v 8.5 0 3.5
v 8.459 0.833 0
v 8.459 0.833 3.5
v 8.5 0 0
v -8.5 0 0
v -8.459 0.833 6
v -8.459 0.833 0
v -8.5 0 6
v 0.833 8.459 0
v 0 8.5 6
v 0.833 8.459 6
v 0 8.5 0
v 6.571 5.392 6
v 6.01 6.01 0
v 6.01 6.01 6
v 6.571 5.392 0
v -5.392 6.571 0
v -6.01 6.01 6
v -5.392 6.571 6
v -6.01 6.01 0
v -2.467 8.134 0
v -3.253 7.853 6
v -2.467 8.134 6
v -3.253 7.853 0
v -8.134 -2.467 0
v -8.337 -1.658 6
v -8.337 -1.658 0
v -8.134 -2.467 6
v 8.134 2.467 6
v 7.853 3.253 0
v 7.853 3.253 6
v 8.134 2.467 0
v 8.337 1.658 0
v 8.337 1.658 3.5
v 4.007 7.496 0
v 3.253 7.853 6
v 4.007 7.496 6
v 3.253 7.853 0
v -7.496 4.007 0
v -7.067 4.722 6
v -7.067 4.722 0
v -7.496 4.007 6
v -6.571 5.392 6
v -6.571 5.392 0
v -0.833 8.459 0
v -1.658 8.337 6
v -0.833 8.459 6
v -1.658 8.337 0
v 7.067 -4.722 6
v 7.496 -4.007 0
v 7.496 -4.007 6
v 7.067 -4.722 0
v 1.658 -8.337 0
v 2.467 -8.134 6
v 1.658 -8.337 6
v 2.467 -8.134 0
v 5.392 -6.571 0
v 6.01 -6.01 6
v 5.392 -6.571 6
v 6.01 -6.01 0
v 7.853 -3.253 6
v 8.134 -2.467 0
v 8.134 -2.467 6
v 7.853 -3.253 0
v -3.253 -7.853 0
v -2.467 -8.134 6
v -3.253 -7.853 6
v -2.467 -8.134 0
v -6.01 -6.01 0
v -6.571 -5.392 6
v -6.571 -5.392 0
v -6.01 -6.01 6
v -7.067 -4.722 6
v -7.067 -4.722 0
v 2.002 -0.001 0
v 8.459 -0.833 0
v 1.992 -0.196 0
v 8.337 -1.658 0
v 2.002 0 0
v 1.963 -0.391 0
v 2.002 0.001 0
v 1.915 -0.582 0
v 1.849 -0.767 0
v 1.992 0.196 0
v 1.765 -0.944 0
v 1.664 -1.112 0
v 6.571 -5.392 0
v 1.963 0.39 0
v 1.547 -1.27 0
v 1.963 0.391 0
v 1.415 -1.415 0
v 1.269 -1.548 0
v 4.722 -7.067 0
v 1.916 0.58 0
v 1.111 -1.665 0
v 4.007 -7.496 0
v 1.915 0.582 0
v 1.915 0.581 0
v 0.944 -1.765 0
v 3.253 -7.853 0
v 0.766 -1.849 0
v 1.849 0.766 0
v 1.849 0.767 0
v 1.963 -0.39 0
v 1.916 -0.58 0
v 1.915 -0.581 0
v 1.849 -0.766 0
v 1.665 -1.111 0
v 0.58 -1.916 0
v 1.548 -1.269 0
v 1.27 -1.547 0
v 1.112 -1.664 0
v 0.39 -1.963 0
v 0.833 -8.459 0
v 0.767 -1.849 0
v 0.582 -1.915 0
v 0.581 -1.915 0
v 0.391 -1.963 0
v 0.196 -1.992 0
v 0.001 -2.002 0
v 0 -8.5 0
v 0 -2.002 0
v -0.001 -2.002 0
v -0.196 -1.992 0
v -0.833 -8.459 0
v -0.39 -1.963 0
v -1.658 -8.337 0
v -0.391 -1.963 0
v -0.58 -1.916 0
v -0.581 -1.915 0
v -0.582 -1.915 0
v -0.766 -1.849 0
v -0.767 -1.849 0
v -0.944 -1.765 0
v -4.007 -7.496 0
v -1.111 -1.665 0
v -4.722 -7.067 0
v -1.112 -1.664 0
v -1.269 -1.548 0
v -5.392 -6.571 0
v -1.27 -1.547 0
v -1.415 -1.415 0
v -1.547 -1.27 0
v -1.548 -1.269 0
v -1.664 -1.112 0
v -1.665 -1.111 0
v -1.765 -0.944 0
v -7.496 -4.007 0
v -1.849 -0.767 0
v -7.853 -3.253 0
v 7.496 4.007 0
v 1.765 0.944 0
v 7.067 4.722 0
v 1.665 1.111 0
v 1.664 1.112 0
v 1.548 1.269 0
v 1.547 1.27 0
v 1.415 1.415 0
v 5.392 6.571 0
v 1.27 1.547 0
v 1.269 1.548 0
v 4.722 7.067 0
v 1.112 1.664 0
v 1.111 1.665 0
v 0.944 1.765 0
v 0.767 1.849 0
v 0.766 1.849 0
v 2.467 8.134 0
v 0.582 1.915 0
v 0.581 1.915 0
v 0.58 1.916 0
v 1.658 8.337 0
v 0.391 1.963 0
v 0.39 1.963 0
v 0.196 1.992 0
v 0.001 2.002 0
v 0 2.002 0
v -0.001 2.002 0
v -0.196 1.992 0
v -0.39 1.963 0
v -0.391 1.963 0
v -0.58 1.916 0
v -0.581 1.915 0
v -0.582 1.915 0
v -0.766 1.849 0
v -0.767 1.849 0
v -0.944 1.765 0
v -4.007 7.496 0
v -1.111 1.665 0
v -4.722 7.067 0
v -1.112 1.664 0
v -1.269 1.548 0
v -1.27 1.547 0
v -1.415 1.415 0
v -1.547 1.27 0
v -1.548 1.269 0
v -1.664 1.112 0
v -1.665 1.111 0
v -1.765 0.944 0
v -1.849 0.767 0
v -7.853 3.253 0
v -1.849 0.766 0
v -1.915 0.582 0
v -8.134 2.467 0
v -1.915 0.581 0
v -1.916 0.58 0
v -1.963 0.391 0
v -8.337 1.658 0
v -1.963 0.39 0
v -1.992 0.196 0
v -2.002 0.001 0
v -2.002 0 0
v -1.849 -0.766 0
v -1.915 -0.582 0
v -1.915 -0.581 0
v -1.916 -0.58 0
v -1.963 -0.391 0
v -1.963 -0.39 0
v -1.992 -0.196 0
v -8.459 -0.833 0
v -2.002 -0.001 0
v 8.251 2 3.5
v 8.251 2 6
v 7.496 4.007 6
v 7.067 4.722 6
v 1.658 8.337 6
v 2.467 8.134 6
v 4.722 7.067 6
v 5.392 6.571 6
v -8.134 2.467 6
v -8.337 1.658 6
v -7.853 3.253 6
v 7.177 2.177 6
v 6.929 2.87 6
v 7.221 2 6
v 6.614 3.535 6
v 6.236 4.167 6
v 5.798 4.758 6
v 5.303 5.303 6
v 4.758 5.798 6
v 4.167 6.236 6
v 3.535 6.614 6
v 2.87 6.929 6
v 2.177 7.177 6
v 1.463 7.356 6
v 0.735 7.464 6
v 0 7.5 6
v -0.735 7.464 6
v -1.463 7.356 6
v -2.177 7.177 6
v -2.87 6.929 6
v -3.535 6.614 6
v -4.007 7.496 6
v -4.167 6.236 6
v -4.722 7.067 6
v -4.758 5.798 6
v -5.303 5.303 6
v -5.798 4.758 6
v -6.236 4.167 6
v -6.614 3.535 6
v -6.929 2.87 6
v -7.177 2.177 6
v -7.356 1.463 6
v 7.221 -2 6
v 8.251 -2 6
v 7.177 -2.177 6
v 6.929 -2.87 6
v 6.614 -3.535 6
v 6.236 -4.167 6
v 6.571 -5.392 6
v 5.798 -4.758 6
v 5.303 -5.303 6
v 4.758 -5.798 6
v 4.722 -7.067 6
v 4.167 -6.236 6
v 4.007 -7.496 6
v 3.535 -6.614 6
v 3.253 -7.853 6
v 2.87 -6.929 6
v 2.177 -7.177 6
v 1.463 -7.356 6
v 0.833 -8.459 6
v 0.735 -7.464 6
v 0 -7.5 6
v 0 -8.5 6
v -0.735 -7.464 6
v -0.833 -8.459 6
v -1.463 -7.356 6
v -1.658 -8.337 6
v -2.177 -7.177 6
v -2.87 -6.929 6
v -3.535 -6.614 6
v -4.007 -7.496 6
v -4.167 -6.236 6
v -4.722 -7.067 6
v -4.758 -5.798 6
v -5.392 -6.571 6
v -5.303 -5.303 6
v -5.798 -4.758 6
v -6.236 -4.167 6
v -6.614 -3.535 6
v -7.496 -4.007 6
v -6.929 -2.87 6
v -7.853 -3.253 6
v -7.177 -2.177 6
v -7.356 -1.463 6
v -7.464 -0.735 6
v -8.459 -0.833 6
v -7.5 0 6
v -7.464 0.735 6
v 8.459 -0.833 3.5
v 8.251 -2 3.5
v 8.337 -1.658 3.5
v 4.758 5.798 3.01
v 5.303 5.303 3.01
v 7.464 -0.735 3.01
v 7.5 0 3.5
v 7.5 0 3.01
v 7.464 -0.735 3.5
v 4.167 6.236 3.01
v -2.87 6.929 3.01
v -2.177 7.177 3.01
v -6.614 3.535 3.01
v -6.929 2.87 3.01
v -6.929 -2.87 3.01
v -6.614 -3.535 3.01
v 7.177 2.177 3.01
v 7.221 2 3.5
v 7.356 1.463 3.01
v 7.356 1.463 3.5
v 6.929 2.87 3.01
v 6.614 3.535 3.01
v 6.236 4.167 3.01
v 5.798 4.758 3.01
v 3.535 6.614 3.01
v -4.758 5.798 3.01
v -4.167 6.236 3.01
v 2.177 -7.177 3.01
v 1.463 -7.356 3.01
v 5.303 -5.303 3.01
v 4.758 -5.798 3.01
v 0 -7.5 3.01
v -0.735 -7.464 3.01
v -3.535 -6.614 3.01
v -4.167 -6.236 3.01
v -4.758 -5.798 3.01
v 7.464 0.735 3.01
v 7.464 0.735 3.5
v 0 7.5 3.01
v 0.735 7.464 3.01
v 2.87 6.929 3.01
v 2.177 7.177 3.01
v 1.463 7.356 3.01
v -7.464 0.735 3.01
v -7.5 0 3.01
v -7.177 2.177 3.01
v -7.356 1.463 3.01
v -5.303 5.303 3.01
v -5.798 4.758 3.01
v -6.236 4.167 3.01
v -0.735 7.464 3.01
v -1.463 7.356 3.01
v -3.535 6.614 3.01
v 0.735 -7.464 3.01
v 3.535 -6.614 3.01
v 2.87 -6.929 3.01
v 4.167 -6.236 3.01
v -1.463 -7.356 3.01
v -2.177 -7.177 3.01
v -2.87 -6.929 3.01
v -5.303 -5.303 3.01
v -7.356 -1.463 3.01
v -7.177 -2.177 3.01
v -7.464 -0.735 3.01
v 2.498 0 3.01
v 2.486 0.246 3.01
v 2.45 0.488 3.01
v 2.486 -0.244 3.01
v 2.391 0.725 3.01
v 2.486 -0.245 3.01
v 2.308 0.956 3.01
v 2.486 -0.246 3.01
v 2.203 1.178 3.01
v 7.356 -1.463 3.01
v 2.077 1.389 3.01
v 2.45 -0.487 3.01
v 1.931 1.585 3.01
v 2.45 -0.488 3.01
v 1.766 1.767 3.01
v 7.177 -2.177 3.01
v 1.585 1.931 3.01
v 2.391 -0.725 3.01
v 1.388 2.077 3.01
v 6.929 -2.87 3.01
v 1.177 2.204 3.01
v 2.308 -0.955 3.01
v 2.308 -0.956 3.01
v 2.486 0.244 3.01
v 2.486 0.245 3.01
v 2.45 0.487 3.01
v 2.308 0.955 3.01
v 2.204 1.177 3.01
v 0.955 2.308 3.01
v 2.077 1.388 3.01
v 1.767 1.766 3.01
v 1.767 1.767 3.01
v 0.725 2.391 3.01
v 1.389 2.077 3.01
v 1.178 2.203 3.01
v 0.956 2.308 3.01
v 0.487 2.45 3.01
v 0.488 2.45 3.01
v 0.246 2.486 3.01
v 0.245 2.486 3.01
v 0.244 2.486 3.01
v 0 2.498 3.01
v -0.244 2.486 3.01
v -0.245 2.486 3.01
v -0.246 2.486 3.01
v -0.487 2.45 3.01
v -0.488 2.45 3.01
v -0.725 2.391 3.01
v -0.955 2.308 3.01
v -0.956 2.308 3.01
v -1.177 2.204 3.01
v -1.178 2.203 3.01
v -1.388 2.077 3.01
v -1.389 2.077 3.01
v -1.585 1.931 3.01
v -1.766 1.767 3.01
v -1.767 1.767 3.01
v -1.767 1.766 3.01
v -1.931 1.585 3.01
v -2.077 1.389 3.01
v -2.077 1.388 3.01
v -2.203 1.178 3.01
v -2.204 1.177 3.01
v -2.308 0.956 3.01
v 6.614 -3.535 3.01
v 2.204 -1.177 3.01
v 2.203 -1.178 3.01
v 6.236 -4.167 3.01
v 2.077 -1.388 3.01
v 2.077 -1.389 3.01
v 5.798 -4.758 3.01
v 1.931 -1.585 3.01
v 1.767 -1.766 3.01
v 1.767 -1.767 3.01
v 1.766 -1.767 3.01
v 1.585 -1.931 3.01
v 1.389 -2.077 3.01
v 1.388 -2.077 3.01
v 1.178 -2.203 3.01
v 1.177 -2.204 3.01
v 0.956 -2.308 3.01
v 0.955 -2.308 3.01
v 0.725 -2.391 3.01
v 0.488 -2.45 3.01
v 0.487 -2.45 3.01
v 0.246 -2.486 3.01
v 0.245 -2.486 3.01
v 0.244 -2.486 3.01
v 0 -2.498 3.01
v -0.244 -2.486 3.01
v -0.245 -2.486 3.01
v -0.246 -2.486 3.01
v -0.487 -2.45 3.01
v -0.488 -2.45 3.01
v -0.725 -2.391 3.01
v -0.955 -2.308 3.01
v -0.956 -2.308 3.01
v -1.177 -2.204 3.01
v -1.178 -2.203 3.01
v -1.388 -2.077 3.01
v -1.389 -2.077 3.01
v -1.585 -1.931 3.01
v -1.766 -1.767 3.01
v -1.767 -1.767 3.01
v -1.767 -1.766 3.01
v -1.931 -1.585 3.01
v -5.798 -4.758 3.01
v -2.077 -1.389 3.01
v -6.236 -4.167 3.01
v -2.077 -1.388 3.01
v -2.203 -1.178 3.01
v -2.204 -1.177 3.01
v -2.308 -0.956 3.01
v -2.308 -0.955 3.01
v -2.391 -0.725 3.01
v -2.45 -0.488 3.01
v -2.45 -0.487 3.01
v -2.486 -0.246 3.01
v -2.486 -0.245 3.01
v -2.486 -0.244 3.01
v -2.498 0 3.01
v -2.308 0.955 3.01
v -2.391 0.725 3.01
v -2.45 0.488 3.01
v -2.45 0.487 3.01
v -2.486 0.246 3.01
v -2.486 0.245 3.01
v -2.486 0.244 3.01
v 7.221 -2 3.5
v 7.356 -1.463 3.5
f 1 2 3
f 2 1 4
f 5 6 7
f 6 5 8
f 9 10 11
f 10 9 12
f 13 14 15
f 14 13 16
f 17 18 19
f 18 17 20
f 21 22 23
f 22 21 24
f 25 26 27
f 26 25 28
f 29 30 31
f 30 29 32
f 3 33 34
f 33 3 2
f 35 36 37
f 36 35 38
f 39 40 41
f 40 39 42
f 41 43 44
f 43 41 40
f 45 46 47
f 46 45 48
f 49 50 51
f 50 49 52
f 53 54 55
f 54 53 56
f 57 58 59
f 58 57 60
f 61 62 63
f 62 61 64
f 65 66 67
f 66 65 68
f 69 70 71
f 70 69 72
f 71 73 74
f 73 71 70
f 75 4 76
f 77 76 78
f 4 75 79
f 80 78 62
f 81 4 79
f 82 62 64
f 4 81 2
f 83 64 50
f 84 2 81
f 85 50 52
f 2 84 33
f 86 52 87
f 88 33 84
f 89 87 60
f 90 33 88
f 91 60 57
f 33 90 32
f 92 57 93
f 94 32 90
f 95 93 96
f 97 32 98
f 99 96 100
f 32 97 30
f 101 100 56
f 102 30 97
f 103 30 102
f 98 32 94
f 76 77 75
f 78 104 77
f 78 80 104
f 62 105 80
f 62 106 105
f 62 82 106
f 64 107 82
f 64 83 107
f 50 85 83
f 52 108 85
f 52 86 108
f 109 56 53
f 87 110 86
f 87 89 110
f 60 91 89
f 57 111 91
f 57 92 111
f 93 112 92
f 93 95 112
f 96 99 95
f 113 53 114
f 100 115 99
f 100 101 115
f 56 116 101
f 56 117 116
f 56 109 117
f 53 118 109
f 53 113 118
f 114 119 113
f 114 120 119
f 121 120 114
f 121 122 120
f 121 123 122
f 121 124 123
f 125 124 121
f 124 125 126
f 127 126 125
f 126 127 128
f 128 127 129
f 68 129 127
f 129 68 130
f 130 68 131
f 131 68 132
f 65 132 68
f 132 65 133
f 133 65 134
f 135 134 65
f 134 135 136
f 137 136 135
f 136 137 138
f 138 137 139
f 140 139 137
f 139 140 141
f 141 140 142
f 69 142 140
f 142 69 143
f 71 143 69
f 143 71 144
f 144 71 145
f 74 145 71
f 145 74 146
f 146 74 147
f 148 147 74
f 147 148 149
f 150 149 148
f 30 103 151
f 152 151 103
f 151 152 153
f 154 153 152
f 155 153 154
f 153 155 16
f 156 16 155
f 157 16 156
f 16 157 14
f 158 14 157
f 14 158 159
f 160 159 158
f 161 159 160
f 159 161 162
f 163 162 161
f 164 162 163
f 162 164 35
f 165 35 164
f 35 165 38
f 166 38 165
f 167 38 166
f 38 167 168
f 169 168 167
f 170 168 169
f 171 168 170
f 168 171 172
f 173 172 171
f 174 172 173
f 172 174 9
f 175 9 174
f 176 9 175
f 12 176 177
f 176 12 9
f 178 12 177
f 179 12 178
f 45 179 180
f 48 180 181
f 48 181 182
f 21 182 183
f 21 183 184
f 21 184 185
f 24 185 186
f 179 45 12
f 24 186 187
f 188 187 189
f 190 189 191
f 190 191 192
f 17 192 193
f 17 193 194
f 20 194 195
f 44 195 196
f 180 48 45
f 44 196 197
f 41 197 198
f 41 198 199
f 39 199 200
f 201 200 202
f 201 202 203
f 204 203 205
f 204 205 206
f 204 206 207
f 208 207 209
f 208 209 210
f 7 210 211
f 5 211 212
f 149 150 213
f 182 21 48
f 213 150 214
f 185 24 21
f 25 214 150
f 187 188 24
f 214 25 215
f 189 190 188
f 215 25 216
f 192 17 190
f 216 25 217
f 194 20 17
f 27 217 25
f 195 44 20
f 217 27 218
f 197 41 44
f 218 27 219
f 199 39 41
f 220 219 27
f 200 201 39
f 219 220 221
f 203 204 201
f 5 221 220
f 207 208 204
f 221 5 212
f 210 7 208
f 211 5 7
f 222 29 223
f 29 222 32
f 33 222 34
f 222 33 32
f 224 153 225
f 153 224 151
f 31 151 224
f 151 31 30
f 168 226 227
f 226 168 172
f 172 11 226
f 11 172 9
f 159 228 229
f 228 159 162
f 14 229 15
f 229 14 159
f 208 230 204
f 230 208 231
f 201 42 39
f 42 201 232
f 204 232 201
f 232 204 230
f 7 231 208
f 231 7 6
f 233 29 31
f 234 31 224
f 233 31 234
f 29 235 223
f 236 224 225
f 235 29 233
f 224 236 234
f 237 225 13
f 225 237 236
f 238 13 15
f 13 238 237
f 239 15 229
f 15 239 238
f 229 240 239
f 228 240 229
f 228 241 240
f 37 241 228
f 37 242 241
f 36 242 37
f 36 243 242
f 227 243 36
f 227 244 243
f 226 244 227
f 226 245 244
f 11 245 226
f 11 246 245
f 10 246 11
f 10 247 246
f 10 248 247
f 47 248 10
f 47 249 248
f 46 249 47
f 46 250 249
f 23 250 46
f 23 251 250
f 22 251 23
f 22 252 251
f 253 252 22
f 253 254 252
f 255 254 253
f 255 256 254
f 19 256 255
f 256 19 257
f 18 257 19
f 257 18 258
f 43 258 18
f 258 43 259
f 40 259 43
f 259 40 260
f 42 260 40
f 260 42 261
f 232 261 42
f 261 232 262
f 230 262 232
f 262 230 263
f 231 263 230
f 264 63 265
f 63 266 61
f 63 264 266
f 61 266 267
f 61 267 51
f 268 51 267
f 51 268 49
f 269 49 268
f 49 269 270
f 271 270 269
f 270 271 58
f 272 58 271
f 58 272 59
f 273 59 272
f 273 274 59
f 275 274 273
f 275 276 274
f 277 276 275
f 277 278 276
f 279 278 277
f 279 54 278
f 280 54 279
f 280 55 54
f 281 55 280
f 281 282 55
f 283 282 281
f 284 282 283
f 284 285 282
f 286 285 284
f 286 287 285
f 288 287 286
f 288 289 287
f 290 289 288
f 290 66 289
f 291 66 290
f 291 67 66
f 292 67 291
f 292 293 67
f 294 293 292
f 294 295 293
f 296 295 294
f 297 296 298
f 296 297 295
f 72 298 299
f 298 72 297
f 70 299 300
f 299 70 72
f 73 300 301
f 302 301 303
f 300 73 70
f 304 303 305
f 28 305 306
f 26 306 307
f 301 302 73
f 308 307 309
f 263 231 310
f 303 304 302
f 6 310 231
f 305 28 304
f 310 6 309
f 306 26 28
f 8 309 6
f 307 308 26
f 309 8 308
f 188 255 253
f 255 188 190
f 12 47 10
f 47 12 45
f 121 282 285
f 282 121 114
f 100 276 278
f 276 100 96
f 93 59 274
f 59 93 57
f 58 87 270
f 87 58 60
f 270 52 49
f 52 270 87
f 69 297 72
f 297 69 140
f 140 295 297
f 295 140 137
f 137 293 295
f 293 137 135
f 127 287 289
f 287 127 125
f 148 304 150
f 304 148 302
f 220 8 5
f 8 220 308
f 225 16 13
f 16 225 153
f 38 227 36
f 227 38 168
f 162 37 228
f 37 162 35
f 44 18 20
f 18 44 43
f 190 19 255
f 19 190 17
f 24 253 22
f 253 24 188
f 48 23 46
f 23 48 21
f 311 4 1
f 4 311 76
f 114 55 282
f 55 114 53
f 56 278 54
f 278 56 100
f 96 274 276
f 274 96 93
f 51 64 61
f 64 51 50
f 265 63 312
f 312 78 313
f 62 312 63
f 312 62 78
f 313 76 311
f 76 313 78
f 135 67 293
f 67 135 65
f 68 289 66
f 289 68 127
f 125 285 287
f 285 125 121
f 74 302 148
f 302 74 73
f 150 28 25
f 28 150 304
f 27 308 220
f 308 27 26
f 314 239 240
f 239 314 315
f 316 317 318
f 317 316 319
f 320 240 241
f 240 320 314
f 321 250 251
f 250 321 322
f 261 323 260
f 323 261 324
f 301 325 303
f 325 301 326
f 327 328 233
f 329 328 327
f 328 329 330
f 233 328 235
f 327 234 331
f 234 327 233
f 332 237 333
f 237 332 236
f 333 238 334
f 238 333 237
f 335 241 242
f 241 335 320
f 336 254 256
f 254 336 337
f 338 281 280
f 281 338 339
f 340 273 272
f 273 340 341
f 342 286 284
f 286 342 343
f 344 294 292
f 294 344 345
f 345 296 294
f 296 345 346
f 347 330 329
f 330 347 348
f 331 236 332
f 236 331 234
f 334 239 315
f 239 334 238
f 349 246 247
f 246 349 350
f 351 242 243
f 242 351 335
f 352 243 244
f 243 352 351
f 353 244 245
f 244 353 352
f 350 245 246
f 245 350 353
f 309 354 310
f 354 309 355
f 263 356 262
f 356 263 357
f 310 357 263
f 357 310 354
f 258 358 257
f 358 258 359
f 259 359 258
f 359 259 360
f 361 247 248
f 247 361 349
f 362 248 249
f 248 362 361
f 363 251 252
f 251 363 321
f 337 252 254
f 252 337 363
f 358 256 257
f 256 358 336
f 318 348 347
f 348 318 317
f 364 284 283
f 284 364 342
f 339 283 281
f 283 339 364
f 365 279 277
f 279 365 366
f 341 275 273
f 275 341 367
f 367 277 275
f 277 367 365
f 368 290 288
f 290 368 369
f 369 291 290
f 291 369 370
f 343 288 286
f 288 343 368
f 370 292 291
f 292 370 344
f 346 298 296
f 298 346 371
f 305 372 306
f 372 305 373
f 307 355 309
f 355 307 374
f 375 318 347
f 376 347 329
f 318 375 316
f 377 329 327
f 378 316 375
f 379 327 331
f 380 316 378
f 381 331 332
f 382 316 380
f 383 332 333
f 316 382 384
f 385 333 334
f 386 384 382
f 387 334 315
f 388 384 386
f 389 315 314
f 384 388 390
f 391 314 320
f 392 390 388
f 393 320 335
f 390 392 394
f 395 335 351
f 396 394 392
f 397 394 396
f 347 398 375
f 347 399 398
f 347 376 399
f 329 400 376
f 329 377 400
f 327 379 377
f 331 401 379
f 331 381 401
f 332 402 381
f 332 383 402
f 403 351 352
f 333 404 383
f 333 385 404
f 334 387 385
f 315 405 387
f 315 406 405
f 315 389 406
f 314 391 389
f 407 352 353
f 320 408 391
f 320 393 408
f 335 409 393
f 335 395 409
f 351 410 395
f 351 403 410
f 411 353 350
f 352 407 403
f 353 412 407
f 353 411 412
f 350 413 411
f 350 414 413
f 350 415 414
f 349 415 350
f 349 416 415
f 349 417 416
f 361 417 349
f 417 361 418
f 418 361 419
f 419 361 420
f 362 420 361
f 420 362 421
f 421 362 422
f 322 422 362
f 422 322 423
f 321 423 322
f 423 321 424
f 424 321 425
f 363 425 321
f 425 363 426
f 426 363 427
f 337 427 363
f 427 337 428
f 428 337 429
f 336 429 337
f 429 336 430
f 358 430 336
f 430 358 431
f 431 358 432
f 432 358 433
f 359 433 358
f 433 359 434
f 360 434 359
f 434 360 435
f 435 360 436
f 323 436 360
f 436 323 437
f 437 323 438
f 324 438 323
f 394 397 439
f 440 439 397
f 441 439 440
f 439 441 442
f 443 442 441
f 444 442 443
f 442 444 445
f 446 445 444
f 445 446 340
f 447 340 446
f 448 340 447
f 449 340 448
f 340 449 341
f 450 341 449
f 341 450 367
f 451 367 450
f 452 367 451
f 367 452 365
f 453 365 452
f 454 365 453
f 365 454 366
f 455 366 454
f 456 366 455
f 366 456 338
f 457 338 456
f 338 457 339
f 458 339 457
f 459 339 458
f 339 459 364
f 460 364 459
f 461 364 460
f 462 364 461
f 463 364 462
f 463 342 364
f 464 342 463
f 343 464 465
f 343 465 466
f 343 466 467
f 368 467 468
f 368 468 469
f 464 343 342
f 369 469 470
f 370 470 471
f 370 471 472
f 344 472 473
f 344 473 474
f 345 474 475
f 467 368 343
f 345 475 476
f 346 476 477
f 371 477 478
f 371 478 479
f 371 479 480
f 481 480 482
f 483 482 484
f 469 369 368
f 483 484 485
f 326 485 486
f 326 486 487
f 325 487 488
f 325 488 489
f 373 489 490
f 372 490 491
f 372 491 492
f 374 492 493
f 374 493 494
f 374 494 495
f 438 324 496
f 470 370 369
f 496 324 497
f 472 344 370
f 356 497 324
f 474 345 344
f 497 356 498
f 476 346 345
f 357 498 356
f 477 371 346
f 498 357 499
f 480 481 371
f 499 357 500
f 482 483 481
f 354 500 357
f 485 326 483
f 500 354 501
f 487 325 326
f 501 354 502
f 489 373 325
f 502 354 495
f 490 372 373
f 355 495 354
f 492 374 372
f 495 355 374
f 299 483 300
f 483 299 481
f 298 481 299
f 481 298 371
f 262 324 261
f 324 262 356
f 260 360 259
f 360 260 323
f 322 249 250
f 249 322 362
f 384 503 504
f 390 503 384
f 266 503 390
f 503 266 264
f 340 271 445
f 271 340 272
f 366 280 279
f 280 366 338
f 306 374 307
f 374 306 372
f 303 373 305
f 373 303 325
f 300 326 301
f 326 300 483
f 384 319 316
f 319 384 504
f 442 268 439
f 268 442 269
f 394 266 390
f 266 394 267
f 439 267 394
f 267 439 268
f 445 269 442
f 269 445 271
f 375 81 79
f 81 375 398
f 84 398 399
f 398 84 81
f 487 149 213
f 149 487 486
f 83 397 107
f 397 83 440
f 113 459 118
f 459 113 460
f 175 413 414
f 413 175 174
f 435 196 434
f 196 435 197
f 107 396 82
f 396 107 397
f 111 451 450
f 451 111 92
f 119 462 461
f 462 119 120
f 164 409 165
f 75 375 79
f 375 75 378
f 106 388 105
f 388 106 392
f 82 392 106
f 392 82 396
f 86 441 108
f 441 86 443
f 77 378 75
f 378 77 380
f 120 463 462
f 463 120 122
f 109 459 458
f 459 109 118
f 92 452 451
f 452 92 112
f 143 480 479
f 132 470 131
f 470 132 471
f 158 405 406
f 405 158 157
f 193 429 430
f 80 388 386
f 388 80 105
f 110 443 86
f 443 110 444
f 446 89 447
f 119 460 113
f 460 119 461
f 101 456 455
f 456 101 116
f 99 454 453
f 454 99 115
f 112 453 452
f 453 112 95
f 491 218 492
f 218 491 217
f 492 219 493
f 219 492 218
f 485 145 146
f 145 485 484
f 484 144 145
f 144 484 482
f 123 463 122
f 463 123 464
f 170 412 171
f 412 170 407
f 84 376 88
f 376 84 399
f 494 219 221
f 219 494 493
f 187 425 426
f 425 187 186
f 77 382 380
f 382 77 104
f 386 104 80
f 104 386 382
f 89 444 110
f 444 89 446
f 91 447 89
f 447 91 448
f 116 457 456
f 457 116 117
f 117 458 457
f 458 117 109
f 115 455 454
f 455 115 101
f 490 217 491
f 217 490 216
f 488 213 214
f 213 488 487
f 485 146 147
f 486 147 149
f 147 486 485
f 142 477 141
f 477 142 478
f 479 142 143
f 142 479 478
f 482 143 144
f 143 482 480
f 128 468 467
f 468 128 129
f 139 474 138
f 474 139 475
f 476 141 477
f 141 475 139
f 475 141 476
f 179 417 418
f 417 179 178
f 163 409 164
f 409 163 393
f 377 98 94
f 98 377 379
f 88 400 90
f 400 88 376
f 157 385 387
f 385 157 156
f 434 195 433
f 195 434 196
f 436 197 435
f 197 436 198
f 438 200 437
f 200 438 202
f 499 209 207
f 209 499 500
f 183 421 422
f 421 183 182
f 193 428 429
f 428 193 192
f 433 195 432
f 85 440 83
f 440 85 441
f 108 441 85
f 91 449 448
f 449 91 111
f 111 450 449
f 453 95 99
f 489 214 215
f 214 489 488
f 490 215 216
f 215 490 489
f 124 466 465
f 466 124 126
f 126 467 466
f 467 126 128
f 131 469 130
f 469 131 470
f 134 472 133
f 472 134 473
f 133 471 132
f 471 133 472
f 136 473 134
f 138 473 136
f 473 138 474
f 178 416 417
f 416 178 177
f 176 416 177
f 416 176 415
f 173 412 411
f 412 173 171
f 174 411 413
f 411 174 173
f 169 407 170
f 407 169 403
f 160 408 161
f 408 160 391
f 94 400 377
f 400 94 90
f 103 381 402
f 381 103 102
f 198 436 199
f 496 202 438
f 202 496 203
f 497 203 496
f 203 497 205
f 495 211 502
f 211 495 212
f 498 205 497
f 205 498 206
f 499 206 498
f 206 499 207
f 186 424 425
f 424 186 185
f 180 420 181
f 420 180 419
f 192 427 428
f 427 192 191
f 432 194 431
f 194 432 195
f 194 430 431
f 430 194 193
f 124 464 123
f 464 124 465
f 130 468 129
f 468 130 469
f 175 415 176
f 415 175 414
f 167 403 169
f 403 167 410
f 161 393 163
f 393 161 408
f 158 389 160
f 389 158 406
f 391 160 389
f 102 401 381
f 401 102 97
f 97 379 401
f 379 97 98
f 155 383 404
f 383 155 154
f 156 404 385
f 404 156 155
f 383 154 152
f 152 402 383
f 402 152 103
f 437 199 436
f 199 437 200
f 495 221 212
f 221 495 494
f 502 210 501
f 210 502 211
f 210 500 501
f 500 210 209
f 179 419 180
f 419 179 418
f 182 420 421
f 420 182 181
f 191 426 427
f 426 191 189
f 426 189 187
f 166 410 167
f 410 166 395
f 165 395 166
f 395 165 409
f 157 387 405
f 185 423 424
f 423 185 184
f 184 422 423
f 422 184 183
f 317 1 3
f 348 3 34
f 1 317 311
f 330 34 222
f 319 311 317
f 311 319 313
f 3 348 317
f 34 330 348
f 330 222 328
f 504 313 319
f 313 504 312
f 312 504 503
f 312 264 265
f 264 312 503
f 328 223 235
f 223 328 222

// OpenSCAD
washer_cutout_depth = 3;
ring_height = 6;

_fudge = 0.01;
$fn = 64;

difference() {
    cylinder(d = 17, h = ring_height);
    translate([0,0,ring_height - washer_cutout_depth + _fudge]) cylinder(d = 15, h = washer_cutout_depth);
    translate([0,0,-_fudge])cylinder(d1= 4, d2 = 5, h = ring_height - washer_cutout_depth + 3 * _fudge);
    translate([5, -2, 3.5]) cube([20, 4, 4]);
}
